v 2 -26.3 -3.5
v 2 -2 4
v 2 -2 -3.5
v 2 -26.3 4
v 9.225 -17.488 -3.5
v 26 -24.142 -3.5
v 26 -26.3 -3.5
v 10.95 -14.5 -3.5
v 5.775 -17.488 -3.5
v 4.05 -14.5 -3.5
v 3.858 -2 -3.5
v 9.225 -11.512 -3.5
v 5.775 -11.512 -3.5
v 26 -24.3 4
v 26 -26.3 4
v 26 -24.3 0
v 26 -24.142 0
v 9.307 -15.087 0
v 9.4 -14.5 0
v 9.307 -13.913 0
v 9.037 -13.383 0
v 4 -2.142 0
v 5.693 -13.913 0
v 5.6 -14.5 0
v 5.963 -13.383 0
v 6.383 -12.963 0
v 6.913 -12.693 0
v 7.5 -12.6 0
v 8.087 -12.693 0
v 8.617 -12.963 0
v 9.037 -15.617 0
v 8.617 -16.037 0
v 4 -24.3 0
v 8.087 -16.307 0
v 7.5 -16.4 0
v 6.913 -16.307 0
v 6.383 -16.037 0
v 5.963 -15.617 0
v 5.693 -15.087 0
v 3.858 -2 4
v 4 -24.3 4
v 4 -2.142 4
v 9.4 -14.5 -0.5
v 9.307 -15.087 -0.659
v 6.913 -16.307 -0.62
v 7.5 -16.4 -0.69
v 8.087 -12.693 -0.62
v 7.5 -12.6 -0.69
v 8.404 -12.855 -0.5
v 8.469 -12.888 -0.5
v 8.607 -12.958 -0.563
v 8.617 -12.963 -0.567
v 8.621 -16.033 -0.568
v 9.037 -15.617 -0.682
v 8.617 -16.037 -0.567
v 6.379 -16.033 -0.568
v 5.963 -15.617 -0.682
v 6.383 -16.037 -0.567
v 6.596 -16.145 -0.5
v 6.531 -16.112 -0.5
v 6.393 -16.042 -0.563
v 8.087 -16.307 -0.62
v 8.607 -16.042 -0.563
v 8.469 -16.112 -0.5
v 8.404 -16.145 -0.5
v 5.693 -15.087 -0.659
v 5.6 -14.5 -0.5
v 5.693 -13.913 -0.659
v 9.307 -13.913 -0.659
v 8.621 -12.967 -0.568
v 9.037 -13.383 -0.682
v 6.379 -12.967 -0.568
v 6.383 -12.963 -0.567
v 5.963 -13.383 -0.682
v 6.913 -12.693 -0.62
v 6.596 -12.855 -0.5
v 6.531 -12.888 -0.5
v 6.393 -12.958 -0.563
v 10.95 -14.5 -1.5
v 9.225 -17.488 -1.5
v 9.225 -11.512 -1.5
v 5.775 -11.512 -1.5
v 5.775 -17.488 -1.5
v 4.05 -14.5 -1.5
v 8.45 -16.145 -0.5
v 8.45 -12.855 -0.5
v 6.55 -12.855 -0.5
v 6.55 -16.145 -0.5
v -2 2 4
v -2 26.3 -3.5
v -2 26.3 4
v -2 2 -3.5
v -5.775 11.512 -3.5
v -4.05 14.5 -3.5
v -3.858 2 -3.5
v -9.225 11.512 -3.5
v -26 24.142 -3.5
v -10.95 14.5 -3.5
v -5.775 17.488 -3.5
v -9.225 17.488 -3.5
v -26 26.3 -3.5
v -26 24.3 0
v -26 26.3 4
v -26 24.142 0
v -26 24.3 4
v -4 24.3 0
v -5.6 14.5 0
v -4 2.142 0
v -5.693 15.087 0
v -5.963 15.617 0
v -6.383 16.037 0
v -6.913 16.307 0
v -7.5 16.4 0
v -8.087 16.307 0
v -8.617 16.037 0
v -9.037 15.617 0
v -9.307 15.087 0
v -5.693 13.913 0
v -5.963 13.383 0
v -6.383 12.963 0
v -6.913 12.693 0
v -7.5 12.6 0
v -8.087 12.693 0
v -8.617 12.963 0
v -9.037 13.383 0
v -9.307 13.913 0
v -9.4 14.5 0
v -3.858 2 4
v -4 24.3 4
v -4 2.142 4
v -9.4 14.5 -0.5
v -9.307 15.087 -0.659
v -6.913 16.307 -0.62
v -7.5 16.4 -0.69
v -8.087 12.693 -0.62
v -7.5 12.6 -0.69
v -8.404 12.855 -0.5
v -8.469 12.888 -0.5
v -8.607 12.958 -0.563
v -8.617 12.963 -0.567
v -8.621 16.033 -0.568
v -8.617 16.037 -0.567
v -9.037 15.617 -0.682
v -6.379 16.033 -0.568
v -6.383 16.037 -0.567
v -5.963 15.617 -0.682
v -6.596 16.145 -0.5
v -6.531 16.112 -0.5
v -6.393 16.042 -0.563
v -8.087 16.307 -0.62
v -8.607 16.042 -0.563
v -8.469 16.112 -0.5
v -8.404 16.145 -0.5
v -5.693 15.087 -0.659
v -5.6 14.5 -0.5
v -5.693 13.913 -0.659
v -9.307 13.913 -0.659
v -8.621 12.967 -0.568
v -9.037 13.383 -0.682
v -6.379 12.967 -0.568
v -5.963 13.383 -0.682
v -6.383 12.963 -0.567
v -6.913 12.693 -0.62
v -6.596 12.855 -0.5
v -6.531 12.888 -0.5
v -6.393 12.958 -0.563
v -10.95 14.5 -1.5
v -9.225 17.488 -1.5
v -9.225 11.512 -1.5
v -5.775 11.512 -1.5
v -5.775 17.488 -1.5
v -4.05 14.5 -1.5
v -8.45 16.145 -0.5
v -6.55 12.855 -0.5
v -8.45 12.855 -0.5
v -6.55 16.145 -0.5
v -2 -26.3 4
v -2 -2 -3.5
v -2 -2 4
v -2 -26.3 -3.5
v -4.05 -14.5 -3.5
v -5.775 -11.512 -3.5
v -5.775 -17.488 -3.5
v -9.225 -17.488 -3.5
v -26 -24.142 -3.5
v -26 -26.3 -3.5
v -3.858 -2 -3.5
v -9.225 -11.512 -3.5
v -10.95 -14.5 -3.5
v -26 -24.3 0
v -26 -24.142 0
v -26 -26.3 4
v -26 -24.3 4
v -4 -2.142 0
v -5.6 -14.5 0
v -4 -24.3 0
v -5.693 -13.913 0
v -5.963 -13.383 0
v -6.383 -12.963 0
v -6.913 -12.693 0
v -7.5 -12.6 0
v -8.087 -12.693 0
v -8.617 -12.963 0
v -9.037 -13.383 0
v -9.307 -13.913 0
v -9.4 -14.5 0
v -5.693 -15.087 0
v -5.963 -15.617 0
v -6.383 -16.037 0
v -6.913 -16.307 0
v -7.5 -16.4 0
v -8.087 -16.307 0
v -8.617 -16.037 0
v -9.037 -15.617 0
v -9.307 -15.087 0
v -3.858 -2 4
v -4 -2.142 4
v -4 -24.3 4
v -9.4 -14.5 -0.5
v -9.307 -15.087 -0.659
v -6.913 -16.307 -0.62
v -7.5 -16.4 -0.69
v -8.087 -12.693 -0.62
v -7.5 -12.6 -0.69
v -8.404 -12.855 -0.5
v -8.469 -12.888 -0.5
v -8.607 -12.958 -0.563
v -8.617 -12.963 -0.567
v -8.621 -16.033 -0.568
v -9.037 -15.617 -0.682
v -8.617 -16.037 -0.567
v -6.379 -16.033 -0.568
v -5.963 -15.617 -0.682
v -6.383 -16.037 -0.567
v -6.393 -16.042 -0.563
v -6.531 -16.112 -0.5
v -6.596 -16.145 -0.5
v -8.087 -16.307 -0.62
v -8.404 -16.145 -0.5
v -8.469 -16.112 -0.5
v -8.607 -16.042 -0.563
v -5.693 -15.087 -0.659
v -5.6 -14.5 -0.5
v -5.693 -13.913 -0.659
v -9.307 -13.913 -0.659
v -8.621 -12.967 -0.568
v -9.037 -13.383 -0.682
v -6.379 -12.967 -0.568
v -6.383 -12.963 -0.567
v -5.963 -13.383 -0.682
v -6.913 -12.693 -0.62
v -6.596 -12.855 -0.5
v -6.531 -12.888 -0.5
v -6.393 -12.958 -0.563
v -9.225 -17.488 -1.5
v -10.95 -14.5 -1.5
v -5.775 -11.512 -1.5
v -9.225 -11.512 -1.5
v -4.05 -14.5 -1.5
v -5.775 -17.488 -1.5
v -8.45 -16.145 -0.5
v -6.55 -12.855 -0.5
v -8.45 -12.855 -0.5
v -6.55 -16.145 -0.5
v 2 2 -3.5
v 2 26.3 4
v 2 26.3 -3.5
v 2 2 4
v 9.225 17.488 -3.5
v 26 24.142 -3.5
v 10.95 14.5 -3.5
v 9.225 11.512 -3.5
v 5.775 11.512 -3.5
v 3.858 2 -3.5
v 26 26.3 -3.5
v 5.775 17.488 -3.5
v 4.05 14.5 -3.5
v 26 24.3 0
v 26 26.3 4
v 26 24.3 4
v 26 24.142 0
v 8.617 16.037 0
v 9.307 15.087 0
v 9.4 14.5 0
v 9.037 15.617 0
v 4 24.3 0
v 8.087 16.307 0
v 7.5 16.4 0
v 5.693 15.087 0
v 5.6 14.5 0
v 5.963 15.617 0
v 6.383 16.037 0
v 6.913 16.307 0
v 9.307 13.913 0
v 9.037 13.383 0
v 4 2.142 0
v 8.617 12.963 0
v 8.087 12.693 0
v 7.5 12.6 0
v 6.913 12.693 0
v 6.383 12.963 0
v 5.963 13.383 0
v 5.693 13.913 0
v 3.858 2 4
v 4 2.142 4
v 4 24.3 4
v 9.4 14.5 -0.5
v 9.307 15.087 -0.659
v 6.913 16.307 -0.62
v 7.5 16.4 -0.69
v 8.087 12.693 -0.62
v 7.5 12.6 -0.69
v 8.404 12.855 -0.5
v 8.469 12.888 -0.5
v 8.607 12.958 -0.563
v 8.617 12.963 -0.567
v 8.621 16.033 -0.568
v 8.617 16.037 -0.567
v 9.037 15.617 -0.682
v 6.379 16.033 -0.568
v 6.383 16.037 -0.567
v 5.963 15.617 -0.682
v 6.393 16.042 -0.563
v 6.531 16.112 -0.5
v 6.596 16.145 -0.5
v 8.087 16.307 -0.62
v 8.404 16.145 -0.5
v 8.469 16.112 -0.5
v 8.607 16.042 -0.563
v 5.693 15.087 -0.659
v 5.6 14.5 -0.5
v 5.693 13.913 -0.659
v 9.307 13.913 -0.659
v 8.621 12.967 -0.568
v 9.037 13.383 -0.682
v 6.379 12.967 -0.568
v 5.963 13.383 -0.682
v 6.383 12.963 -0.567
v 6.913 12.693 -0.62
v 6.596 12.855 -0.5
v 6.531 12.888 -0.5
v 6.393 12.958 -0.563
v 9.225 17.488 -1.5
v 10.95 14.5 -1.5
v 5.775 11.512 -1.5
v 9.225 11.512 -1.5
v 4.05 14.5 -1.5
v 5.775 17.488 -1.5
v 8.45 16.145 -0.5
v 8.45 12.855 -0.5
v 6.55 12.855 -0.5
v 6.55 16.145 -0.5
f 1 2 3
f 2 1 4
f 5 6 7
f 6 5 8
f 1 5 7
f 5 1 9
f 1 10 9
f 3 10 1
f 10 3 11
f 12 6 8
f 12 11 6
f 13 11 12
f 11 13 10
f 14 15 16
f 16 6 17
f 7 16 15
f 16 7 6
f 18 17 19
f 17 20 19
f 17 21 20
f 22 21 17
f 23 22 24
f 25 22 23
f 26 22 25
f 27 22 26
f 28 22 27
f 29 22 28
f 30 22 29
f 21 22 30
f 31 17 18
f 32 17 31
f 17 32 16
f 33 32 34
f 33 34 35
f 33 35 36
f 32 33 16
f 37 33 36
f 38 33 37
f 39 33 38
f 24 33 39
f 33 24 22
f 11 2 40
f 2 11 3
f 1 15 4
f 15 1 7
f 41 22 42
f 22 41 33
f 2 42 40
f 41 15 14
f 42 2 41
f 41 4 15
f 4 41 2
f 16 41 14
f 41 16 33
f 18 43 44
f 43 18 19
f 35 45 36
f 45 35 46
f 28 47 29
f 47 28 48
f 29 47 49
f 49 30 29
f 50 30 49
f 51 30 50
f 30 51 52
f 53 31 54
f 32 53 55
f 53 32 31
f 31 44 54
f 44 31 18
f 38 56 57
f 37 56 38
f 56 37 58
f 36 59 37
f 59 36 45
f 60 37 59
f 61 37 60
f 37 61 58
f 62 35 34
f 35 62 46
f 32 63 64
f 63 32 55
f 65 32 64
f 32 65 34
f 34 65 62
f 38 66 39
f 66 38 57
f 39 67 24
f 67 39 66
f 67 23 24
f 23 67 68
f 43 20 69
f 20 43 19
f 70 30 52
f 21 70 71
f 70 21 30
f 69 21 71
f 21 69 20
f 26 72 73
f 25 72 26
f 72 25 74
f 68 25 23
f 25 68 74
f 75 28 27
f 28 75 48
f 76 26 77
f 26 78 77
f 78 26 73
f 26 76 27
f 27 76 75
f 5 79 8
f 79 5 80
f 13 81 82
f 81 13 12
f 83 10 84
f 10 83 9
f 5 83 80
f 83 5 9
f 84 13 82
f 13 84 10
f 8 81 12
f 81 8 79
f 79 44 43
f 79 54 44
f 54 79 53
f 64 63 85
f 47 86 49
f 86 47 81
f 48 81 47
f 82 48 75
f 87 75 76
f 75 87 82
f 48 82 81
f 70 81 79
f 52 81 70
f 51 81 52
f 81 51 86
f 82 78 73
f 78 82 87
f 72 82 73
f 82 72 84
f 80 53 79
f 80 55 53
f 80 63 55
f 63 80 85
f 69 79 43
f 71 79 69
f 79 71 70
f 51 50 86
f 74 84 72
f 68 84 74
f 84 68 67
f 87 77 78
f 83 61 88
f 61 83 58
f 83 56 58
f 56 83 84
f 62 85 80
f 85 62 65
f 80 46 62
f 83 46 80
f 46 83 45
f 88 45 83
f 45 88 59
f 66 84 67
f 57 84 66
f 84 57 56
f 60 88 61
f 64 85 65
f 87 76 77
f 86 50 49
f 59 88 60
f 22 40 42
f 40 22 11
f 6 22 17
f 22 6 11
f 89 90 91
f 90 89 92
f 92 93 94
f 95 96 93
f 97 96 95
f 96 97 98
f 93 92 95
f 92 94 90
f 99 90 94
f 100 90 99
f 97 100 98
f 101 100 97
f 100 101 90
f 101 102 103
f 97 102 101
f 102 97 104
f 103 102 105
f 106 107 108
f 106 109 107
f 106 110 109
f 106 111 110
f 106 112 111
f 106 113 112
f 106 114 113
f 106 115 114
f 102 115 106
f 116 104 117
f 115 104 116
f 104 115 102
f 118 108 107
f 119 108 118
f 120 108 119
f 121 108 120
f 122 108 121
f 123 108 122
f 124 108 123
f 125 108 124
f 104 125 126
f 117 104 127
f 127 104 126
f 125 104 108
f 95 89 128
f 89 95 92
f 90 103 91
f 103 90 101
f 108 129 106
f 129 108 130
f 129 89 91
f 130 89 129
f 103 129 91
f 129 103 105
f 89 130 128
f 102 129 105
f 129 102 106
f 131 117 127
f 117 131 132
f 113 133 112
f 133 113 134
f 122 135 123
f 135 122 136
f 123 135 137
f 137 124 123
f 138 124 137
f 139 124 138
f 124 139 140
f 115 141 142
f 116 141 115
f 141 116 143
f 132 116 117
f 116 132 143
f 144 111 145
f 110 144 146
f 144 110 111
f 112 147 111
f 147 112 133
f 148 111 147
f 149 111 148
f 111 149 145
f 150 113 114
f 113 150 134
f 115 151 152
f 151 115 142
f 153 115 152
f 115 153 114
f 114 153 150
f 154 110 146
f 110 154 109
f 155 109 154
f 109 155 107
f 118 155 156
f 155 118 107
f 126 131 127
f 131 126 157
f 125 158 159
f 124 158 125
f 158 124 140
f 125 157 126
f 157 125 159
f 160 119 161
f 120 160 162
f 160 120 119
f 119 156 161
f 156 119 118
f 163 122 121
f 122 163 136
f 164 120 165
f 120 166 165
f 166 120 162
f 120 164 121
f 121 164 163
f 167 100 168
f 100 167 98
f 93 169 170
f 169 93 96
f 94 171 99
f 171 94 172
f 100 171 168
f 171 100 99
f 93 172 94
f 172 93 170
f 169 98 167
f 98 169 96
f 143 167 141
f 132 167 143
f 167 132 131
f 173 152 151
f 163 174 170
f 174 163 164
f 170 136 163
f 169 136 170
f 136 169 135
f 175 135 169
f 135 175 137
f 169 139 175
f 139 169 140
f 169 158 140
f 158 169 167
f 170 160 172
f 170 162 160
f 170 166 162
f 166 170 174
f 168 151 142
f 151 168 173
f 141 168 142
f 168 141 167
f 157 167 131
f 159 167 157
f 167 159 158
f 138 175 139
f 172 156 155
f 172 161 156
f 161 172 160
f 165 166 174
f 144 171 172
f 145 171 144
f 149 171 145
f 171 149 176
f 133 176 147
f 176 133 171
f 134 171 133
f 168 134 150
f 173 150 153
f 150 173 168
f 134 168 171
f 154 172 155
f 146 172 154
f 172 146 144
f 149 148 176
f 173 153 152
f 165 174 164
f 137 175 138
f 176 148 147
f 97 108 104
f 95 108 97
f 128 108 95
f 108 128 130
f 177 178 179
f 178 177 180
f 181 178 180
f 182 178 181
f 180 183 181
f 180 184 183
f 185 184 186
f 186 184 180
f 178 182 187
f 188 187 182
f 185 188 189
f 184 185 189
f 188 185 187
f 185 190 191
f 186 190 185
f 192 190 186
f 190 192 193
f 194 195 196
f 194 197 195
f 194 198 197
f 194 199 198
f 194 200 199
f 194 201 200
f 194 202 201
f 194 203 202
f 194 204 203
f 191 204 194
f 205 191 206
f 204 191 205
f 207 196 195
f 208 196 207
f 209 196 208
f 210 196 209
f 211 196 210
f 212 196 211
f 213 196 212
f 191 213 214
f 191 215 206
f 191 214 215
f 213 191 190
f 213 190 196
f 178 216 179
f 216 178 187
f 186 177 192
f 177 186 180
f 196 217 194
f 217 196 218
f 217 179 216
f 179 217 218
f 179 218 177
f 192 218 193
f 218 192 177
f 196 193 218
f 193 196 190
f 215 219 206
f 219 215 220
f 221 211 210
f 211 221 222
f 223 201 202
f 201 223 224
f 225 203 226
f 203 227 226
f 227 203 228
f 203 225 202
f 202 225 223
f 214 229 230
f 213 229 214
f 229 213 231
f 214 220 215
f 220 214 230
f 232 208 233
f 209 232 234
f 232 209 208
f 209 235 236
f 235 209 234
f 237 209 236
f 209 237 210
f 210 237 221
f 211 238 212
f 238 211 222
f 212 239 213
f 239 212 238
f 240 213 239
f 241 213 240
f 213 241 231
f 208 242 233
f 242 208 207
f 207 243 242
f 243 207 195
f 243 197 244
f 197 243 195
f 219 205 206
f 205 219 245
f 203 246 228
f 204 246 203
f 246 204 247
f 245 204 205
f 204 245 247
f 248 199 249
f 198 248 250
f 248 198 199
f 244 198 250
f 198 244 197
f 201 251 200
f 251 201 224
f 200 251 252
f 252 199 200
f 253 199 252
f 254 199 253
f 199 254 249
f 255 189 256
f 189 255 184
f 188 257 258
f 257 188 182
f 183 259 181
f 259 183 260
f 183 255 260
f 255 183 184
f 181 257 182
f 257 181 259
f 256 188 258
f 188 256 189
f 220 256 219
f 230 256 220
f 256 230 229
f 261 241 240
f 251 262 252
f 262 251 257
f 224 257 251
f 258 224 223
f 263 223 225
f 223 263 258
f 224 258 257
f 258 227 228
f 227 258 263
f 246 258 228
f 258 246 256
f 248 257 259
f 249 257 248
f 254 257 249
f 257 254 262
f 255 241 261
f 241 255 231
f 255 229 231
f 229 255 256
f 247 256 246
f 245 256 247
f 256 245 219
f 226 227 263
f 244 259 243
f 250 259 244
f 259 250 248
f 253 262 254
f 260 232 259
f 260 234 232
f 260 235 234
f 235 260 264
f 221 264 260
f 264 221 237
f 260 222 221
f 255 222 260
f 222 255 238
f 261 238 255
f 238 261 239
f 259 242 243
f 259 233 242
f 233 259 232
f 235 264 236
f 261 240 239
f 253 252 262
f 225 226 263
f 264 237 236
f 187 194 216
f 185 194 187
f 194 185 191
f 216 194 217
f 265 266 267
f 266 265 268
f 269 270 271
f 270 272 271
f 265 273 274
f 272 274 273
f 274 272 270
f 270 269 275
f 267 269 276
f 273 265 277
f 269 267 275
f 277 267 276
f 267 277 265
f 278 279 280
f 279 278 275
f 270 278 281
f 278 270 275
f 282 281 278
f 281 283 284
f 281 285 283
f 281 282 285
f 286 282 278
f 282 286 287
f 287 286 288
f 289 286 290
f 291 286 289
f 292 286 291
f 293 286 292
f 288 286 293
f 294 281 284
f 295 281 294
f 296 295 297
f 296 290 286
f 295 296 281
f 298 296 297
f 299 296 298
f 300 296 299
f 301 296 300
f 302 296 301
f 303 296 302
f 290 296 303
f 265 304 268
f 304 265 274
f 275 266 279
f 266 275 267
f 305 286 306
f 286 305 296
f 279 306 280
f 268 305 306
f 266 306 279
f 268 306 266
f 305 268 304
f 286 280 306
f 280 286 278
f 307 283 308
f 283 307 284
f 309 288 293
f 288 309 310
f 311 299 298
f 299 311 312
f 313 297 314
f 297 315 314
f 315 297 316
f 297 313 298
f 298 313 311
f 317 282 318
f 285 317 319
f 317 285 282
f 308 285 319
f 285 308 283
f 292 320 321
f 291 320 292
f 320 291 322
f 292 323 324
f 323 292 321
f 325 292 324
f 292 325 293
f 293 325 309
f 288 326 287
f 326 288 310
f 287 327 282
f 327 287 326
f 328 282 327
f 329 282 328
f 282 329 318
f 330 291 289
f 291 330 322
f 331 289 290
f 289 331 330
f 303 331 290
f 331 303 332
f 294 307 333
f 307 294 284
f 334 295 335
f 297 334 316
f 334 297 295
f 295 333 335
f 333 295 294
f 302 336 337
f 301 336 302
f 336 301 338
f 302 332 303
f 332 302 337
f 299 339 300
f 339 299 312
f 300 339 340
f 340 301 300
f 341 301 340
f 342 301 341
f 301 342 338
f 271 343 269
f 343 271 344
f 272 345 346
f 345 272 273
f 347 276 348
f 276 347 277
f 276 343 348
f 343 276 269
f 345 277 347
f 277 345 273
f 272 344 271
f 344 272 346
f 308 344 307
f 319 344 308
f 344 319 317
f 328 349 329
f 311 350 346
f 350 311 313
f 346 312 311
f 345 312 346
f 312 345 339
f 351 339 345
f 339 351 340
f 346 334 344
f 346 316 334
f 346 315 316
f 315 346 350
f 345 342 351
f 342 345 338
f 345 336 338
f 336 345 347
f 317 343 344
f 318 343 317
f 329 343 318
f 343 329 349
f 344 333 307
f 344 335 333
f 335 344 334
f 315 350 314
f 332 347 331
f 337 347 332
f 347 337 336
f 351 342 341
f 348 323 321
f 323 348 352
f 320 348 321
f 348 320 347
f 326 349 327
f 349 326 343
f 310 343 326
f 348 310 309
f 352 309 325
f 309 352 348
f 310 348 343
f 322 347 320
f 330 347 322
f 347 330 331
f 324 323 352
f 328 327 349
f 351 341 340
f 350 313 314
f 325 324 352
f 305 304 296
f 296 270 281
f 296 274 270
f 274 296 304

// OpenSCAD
M3_dia = 3.8;
M3_insert_dia = 5.6;
M3_screw_head_dia = 7;
M3_screw_head_height = 3;
M3_nut_dia = 6.9;

//glass corners
//glass_corner();
//translate([2,2,0]) glass_corner();
//translate([-2,-2,0]) rotate([0,0,180]) glass_corner();
//translate([-2,2,0]) mirror() glass_corner();
//translate([2,-2,0]) rotate([0,0,180]) mirror() glass_corner();

//bed corners
//bed_corner();
translate([2,-10,0]) rotate([180,0,0]) bed_corner();
translate([-2,10,0]) rotate([180,0,180]) bed_corner();
translate([-2,-10,0]) rotate([180,0,0]) mirror() bed_corner();
translate([2,10,0]) rotate([180,0,180]) mirror() bed_corner();



module bed_corner(){
    difference(){
        union() {
            translate([0,-8,0]) cube([24,24.3,3.5]);
            translate([0,-8,-4]) cube([2,24.3,4]);
            translate([0,24-9.7,-4]) cube([24,2,4]);
        }
            
        //holes for screws
        translate([5.5,4.5,-5]) cylinder(r=M3_dia/2, h=12, $fn=20);
        //translate([5.5,18.5,-5]) cylinder(r=M3_dia/2, h=12, $fn=20);
        //translate([19.5,18.5,-5]) cylinder(r=M3_dia/2, h=12, $fn=20);
        
        //pockets for M3 nut traps
        translate([5.5,4.5,1.5]) cylinder(r=M3_nut_dia/2, h=4, $fn=6);
        //translate([19.5,18.5,-4]) cylinder(r=M3_nut_dia/2, h=4, $fn=6);
        
        //cones to print inserts w/o support
        translate([5.5,4.5,0.5]) cylinder(r1=M3_dia/2, r2=M3_nut_dia/2, h=1, $fn=6);
        //translate([19.5,18.5,1]) cylinder(r1=M3_dia/2, r2=M3_nut_dia/2, h=1, $fn=20);
        
                //cut corners
        translate([24,24,1]) rotate([0,0,45]) cube([5,5,12], center=true);
        translate([24,0,1]) rotate([0,0,45]) cube([50,20,12], center=true);
        translate([0,24,1]) rotate([0,0,45]) cube([5,5,12], center=true);
        //translate([0,0,1]) rotate([0,0,45]) cube([5,5,12], center=true);
    }
}

module glass_corner(){
        difference(){
        union() {
            cube([24,24,4]);
            translate([0,9,4]) cube([10,15,3]);
            translate([0,24-10,4]) cube([24,10,3]);
           
        }
            
        //holes for screws
        translate([5.5,4.5,-4]) cylinder(r=M3_dia/2, h=12, $fn=20);
        translate([5.5,18.5,-4]) cylinder(r=M3_dia/2, h=12, $fn=20);
        translate([19.5,18.5,-4]) cylinder(r=M3_dia/2, h=12, $fn=20);
        
        //pockets for M3 inserts
        translate([5.5,18.5,0]) cylinder(r=M3_insert_dia/2, h=4, $fn=20);
        //cone to print insert with no support
        translate([5.5,18.5,4]) cylinder(r1=M3_insert_dia/2, r2=M3_dia/2, h=1, $fn=20);
        
        //pockets for screw heads
        translate([19.5,18.5,4]) cylinder(r=M3_screw_head_dia/2, h=M3_screw_head_height, $fn=20);
        
        //cut corners
        translate([24,24,4]) rotate([0,0,45]) cube([5,5,10], center=true);
        translate([24,0,4]) rotate([0,0,45]) cube([20,20,10], center=true);
        translate([0,24,4]) rotate([0,0,45]) cube([5,5,10], center=true);
        translate([0,0,4]) rotate([0,0,45]) cube([5,5,10], center=true);
        
       
        //clearance for glass corner
        translate([10.5,13.5,4]) cylinder(r=M3_dia/2, h=12, $fn=20);
    
        
    }
}
